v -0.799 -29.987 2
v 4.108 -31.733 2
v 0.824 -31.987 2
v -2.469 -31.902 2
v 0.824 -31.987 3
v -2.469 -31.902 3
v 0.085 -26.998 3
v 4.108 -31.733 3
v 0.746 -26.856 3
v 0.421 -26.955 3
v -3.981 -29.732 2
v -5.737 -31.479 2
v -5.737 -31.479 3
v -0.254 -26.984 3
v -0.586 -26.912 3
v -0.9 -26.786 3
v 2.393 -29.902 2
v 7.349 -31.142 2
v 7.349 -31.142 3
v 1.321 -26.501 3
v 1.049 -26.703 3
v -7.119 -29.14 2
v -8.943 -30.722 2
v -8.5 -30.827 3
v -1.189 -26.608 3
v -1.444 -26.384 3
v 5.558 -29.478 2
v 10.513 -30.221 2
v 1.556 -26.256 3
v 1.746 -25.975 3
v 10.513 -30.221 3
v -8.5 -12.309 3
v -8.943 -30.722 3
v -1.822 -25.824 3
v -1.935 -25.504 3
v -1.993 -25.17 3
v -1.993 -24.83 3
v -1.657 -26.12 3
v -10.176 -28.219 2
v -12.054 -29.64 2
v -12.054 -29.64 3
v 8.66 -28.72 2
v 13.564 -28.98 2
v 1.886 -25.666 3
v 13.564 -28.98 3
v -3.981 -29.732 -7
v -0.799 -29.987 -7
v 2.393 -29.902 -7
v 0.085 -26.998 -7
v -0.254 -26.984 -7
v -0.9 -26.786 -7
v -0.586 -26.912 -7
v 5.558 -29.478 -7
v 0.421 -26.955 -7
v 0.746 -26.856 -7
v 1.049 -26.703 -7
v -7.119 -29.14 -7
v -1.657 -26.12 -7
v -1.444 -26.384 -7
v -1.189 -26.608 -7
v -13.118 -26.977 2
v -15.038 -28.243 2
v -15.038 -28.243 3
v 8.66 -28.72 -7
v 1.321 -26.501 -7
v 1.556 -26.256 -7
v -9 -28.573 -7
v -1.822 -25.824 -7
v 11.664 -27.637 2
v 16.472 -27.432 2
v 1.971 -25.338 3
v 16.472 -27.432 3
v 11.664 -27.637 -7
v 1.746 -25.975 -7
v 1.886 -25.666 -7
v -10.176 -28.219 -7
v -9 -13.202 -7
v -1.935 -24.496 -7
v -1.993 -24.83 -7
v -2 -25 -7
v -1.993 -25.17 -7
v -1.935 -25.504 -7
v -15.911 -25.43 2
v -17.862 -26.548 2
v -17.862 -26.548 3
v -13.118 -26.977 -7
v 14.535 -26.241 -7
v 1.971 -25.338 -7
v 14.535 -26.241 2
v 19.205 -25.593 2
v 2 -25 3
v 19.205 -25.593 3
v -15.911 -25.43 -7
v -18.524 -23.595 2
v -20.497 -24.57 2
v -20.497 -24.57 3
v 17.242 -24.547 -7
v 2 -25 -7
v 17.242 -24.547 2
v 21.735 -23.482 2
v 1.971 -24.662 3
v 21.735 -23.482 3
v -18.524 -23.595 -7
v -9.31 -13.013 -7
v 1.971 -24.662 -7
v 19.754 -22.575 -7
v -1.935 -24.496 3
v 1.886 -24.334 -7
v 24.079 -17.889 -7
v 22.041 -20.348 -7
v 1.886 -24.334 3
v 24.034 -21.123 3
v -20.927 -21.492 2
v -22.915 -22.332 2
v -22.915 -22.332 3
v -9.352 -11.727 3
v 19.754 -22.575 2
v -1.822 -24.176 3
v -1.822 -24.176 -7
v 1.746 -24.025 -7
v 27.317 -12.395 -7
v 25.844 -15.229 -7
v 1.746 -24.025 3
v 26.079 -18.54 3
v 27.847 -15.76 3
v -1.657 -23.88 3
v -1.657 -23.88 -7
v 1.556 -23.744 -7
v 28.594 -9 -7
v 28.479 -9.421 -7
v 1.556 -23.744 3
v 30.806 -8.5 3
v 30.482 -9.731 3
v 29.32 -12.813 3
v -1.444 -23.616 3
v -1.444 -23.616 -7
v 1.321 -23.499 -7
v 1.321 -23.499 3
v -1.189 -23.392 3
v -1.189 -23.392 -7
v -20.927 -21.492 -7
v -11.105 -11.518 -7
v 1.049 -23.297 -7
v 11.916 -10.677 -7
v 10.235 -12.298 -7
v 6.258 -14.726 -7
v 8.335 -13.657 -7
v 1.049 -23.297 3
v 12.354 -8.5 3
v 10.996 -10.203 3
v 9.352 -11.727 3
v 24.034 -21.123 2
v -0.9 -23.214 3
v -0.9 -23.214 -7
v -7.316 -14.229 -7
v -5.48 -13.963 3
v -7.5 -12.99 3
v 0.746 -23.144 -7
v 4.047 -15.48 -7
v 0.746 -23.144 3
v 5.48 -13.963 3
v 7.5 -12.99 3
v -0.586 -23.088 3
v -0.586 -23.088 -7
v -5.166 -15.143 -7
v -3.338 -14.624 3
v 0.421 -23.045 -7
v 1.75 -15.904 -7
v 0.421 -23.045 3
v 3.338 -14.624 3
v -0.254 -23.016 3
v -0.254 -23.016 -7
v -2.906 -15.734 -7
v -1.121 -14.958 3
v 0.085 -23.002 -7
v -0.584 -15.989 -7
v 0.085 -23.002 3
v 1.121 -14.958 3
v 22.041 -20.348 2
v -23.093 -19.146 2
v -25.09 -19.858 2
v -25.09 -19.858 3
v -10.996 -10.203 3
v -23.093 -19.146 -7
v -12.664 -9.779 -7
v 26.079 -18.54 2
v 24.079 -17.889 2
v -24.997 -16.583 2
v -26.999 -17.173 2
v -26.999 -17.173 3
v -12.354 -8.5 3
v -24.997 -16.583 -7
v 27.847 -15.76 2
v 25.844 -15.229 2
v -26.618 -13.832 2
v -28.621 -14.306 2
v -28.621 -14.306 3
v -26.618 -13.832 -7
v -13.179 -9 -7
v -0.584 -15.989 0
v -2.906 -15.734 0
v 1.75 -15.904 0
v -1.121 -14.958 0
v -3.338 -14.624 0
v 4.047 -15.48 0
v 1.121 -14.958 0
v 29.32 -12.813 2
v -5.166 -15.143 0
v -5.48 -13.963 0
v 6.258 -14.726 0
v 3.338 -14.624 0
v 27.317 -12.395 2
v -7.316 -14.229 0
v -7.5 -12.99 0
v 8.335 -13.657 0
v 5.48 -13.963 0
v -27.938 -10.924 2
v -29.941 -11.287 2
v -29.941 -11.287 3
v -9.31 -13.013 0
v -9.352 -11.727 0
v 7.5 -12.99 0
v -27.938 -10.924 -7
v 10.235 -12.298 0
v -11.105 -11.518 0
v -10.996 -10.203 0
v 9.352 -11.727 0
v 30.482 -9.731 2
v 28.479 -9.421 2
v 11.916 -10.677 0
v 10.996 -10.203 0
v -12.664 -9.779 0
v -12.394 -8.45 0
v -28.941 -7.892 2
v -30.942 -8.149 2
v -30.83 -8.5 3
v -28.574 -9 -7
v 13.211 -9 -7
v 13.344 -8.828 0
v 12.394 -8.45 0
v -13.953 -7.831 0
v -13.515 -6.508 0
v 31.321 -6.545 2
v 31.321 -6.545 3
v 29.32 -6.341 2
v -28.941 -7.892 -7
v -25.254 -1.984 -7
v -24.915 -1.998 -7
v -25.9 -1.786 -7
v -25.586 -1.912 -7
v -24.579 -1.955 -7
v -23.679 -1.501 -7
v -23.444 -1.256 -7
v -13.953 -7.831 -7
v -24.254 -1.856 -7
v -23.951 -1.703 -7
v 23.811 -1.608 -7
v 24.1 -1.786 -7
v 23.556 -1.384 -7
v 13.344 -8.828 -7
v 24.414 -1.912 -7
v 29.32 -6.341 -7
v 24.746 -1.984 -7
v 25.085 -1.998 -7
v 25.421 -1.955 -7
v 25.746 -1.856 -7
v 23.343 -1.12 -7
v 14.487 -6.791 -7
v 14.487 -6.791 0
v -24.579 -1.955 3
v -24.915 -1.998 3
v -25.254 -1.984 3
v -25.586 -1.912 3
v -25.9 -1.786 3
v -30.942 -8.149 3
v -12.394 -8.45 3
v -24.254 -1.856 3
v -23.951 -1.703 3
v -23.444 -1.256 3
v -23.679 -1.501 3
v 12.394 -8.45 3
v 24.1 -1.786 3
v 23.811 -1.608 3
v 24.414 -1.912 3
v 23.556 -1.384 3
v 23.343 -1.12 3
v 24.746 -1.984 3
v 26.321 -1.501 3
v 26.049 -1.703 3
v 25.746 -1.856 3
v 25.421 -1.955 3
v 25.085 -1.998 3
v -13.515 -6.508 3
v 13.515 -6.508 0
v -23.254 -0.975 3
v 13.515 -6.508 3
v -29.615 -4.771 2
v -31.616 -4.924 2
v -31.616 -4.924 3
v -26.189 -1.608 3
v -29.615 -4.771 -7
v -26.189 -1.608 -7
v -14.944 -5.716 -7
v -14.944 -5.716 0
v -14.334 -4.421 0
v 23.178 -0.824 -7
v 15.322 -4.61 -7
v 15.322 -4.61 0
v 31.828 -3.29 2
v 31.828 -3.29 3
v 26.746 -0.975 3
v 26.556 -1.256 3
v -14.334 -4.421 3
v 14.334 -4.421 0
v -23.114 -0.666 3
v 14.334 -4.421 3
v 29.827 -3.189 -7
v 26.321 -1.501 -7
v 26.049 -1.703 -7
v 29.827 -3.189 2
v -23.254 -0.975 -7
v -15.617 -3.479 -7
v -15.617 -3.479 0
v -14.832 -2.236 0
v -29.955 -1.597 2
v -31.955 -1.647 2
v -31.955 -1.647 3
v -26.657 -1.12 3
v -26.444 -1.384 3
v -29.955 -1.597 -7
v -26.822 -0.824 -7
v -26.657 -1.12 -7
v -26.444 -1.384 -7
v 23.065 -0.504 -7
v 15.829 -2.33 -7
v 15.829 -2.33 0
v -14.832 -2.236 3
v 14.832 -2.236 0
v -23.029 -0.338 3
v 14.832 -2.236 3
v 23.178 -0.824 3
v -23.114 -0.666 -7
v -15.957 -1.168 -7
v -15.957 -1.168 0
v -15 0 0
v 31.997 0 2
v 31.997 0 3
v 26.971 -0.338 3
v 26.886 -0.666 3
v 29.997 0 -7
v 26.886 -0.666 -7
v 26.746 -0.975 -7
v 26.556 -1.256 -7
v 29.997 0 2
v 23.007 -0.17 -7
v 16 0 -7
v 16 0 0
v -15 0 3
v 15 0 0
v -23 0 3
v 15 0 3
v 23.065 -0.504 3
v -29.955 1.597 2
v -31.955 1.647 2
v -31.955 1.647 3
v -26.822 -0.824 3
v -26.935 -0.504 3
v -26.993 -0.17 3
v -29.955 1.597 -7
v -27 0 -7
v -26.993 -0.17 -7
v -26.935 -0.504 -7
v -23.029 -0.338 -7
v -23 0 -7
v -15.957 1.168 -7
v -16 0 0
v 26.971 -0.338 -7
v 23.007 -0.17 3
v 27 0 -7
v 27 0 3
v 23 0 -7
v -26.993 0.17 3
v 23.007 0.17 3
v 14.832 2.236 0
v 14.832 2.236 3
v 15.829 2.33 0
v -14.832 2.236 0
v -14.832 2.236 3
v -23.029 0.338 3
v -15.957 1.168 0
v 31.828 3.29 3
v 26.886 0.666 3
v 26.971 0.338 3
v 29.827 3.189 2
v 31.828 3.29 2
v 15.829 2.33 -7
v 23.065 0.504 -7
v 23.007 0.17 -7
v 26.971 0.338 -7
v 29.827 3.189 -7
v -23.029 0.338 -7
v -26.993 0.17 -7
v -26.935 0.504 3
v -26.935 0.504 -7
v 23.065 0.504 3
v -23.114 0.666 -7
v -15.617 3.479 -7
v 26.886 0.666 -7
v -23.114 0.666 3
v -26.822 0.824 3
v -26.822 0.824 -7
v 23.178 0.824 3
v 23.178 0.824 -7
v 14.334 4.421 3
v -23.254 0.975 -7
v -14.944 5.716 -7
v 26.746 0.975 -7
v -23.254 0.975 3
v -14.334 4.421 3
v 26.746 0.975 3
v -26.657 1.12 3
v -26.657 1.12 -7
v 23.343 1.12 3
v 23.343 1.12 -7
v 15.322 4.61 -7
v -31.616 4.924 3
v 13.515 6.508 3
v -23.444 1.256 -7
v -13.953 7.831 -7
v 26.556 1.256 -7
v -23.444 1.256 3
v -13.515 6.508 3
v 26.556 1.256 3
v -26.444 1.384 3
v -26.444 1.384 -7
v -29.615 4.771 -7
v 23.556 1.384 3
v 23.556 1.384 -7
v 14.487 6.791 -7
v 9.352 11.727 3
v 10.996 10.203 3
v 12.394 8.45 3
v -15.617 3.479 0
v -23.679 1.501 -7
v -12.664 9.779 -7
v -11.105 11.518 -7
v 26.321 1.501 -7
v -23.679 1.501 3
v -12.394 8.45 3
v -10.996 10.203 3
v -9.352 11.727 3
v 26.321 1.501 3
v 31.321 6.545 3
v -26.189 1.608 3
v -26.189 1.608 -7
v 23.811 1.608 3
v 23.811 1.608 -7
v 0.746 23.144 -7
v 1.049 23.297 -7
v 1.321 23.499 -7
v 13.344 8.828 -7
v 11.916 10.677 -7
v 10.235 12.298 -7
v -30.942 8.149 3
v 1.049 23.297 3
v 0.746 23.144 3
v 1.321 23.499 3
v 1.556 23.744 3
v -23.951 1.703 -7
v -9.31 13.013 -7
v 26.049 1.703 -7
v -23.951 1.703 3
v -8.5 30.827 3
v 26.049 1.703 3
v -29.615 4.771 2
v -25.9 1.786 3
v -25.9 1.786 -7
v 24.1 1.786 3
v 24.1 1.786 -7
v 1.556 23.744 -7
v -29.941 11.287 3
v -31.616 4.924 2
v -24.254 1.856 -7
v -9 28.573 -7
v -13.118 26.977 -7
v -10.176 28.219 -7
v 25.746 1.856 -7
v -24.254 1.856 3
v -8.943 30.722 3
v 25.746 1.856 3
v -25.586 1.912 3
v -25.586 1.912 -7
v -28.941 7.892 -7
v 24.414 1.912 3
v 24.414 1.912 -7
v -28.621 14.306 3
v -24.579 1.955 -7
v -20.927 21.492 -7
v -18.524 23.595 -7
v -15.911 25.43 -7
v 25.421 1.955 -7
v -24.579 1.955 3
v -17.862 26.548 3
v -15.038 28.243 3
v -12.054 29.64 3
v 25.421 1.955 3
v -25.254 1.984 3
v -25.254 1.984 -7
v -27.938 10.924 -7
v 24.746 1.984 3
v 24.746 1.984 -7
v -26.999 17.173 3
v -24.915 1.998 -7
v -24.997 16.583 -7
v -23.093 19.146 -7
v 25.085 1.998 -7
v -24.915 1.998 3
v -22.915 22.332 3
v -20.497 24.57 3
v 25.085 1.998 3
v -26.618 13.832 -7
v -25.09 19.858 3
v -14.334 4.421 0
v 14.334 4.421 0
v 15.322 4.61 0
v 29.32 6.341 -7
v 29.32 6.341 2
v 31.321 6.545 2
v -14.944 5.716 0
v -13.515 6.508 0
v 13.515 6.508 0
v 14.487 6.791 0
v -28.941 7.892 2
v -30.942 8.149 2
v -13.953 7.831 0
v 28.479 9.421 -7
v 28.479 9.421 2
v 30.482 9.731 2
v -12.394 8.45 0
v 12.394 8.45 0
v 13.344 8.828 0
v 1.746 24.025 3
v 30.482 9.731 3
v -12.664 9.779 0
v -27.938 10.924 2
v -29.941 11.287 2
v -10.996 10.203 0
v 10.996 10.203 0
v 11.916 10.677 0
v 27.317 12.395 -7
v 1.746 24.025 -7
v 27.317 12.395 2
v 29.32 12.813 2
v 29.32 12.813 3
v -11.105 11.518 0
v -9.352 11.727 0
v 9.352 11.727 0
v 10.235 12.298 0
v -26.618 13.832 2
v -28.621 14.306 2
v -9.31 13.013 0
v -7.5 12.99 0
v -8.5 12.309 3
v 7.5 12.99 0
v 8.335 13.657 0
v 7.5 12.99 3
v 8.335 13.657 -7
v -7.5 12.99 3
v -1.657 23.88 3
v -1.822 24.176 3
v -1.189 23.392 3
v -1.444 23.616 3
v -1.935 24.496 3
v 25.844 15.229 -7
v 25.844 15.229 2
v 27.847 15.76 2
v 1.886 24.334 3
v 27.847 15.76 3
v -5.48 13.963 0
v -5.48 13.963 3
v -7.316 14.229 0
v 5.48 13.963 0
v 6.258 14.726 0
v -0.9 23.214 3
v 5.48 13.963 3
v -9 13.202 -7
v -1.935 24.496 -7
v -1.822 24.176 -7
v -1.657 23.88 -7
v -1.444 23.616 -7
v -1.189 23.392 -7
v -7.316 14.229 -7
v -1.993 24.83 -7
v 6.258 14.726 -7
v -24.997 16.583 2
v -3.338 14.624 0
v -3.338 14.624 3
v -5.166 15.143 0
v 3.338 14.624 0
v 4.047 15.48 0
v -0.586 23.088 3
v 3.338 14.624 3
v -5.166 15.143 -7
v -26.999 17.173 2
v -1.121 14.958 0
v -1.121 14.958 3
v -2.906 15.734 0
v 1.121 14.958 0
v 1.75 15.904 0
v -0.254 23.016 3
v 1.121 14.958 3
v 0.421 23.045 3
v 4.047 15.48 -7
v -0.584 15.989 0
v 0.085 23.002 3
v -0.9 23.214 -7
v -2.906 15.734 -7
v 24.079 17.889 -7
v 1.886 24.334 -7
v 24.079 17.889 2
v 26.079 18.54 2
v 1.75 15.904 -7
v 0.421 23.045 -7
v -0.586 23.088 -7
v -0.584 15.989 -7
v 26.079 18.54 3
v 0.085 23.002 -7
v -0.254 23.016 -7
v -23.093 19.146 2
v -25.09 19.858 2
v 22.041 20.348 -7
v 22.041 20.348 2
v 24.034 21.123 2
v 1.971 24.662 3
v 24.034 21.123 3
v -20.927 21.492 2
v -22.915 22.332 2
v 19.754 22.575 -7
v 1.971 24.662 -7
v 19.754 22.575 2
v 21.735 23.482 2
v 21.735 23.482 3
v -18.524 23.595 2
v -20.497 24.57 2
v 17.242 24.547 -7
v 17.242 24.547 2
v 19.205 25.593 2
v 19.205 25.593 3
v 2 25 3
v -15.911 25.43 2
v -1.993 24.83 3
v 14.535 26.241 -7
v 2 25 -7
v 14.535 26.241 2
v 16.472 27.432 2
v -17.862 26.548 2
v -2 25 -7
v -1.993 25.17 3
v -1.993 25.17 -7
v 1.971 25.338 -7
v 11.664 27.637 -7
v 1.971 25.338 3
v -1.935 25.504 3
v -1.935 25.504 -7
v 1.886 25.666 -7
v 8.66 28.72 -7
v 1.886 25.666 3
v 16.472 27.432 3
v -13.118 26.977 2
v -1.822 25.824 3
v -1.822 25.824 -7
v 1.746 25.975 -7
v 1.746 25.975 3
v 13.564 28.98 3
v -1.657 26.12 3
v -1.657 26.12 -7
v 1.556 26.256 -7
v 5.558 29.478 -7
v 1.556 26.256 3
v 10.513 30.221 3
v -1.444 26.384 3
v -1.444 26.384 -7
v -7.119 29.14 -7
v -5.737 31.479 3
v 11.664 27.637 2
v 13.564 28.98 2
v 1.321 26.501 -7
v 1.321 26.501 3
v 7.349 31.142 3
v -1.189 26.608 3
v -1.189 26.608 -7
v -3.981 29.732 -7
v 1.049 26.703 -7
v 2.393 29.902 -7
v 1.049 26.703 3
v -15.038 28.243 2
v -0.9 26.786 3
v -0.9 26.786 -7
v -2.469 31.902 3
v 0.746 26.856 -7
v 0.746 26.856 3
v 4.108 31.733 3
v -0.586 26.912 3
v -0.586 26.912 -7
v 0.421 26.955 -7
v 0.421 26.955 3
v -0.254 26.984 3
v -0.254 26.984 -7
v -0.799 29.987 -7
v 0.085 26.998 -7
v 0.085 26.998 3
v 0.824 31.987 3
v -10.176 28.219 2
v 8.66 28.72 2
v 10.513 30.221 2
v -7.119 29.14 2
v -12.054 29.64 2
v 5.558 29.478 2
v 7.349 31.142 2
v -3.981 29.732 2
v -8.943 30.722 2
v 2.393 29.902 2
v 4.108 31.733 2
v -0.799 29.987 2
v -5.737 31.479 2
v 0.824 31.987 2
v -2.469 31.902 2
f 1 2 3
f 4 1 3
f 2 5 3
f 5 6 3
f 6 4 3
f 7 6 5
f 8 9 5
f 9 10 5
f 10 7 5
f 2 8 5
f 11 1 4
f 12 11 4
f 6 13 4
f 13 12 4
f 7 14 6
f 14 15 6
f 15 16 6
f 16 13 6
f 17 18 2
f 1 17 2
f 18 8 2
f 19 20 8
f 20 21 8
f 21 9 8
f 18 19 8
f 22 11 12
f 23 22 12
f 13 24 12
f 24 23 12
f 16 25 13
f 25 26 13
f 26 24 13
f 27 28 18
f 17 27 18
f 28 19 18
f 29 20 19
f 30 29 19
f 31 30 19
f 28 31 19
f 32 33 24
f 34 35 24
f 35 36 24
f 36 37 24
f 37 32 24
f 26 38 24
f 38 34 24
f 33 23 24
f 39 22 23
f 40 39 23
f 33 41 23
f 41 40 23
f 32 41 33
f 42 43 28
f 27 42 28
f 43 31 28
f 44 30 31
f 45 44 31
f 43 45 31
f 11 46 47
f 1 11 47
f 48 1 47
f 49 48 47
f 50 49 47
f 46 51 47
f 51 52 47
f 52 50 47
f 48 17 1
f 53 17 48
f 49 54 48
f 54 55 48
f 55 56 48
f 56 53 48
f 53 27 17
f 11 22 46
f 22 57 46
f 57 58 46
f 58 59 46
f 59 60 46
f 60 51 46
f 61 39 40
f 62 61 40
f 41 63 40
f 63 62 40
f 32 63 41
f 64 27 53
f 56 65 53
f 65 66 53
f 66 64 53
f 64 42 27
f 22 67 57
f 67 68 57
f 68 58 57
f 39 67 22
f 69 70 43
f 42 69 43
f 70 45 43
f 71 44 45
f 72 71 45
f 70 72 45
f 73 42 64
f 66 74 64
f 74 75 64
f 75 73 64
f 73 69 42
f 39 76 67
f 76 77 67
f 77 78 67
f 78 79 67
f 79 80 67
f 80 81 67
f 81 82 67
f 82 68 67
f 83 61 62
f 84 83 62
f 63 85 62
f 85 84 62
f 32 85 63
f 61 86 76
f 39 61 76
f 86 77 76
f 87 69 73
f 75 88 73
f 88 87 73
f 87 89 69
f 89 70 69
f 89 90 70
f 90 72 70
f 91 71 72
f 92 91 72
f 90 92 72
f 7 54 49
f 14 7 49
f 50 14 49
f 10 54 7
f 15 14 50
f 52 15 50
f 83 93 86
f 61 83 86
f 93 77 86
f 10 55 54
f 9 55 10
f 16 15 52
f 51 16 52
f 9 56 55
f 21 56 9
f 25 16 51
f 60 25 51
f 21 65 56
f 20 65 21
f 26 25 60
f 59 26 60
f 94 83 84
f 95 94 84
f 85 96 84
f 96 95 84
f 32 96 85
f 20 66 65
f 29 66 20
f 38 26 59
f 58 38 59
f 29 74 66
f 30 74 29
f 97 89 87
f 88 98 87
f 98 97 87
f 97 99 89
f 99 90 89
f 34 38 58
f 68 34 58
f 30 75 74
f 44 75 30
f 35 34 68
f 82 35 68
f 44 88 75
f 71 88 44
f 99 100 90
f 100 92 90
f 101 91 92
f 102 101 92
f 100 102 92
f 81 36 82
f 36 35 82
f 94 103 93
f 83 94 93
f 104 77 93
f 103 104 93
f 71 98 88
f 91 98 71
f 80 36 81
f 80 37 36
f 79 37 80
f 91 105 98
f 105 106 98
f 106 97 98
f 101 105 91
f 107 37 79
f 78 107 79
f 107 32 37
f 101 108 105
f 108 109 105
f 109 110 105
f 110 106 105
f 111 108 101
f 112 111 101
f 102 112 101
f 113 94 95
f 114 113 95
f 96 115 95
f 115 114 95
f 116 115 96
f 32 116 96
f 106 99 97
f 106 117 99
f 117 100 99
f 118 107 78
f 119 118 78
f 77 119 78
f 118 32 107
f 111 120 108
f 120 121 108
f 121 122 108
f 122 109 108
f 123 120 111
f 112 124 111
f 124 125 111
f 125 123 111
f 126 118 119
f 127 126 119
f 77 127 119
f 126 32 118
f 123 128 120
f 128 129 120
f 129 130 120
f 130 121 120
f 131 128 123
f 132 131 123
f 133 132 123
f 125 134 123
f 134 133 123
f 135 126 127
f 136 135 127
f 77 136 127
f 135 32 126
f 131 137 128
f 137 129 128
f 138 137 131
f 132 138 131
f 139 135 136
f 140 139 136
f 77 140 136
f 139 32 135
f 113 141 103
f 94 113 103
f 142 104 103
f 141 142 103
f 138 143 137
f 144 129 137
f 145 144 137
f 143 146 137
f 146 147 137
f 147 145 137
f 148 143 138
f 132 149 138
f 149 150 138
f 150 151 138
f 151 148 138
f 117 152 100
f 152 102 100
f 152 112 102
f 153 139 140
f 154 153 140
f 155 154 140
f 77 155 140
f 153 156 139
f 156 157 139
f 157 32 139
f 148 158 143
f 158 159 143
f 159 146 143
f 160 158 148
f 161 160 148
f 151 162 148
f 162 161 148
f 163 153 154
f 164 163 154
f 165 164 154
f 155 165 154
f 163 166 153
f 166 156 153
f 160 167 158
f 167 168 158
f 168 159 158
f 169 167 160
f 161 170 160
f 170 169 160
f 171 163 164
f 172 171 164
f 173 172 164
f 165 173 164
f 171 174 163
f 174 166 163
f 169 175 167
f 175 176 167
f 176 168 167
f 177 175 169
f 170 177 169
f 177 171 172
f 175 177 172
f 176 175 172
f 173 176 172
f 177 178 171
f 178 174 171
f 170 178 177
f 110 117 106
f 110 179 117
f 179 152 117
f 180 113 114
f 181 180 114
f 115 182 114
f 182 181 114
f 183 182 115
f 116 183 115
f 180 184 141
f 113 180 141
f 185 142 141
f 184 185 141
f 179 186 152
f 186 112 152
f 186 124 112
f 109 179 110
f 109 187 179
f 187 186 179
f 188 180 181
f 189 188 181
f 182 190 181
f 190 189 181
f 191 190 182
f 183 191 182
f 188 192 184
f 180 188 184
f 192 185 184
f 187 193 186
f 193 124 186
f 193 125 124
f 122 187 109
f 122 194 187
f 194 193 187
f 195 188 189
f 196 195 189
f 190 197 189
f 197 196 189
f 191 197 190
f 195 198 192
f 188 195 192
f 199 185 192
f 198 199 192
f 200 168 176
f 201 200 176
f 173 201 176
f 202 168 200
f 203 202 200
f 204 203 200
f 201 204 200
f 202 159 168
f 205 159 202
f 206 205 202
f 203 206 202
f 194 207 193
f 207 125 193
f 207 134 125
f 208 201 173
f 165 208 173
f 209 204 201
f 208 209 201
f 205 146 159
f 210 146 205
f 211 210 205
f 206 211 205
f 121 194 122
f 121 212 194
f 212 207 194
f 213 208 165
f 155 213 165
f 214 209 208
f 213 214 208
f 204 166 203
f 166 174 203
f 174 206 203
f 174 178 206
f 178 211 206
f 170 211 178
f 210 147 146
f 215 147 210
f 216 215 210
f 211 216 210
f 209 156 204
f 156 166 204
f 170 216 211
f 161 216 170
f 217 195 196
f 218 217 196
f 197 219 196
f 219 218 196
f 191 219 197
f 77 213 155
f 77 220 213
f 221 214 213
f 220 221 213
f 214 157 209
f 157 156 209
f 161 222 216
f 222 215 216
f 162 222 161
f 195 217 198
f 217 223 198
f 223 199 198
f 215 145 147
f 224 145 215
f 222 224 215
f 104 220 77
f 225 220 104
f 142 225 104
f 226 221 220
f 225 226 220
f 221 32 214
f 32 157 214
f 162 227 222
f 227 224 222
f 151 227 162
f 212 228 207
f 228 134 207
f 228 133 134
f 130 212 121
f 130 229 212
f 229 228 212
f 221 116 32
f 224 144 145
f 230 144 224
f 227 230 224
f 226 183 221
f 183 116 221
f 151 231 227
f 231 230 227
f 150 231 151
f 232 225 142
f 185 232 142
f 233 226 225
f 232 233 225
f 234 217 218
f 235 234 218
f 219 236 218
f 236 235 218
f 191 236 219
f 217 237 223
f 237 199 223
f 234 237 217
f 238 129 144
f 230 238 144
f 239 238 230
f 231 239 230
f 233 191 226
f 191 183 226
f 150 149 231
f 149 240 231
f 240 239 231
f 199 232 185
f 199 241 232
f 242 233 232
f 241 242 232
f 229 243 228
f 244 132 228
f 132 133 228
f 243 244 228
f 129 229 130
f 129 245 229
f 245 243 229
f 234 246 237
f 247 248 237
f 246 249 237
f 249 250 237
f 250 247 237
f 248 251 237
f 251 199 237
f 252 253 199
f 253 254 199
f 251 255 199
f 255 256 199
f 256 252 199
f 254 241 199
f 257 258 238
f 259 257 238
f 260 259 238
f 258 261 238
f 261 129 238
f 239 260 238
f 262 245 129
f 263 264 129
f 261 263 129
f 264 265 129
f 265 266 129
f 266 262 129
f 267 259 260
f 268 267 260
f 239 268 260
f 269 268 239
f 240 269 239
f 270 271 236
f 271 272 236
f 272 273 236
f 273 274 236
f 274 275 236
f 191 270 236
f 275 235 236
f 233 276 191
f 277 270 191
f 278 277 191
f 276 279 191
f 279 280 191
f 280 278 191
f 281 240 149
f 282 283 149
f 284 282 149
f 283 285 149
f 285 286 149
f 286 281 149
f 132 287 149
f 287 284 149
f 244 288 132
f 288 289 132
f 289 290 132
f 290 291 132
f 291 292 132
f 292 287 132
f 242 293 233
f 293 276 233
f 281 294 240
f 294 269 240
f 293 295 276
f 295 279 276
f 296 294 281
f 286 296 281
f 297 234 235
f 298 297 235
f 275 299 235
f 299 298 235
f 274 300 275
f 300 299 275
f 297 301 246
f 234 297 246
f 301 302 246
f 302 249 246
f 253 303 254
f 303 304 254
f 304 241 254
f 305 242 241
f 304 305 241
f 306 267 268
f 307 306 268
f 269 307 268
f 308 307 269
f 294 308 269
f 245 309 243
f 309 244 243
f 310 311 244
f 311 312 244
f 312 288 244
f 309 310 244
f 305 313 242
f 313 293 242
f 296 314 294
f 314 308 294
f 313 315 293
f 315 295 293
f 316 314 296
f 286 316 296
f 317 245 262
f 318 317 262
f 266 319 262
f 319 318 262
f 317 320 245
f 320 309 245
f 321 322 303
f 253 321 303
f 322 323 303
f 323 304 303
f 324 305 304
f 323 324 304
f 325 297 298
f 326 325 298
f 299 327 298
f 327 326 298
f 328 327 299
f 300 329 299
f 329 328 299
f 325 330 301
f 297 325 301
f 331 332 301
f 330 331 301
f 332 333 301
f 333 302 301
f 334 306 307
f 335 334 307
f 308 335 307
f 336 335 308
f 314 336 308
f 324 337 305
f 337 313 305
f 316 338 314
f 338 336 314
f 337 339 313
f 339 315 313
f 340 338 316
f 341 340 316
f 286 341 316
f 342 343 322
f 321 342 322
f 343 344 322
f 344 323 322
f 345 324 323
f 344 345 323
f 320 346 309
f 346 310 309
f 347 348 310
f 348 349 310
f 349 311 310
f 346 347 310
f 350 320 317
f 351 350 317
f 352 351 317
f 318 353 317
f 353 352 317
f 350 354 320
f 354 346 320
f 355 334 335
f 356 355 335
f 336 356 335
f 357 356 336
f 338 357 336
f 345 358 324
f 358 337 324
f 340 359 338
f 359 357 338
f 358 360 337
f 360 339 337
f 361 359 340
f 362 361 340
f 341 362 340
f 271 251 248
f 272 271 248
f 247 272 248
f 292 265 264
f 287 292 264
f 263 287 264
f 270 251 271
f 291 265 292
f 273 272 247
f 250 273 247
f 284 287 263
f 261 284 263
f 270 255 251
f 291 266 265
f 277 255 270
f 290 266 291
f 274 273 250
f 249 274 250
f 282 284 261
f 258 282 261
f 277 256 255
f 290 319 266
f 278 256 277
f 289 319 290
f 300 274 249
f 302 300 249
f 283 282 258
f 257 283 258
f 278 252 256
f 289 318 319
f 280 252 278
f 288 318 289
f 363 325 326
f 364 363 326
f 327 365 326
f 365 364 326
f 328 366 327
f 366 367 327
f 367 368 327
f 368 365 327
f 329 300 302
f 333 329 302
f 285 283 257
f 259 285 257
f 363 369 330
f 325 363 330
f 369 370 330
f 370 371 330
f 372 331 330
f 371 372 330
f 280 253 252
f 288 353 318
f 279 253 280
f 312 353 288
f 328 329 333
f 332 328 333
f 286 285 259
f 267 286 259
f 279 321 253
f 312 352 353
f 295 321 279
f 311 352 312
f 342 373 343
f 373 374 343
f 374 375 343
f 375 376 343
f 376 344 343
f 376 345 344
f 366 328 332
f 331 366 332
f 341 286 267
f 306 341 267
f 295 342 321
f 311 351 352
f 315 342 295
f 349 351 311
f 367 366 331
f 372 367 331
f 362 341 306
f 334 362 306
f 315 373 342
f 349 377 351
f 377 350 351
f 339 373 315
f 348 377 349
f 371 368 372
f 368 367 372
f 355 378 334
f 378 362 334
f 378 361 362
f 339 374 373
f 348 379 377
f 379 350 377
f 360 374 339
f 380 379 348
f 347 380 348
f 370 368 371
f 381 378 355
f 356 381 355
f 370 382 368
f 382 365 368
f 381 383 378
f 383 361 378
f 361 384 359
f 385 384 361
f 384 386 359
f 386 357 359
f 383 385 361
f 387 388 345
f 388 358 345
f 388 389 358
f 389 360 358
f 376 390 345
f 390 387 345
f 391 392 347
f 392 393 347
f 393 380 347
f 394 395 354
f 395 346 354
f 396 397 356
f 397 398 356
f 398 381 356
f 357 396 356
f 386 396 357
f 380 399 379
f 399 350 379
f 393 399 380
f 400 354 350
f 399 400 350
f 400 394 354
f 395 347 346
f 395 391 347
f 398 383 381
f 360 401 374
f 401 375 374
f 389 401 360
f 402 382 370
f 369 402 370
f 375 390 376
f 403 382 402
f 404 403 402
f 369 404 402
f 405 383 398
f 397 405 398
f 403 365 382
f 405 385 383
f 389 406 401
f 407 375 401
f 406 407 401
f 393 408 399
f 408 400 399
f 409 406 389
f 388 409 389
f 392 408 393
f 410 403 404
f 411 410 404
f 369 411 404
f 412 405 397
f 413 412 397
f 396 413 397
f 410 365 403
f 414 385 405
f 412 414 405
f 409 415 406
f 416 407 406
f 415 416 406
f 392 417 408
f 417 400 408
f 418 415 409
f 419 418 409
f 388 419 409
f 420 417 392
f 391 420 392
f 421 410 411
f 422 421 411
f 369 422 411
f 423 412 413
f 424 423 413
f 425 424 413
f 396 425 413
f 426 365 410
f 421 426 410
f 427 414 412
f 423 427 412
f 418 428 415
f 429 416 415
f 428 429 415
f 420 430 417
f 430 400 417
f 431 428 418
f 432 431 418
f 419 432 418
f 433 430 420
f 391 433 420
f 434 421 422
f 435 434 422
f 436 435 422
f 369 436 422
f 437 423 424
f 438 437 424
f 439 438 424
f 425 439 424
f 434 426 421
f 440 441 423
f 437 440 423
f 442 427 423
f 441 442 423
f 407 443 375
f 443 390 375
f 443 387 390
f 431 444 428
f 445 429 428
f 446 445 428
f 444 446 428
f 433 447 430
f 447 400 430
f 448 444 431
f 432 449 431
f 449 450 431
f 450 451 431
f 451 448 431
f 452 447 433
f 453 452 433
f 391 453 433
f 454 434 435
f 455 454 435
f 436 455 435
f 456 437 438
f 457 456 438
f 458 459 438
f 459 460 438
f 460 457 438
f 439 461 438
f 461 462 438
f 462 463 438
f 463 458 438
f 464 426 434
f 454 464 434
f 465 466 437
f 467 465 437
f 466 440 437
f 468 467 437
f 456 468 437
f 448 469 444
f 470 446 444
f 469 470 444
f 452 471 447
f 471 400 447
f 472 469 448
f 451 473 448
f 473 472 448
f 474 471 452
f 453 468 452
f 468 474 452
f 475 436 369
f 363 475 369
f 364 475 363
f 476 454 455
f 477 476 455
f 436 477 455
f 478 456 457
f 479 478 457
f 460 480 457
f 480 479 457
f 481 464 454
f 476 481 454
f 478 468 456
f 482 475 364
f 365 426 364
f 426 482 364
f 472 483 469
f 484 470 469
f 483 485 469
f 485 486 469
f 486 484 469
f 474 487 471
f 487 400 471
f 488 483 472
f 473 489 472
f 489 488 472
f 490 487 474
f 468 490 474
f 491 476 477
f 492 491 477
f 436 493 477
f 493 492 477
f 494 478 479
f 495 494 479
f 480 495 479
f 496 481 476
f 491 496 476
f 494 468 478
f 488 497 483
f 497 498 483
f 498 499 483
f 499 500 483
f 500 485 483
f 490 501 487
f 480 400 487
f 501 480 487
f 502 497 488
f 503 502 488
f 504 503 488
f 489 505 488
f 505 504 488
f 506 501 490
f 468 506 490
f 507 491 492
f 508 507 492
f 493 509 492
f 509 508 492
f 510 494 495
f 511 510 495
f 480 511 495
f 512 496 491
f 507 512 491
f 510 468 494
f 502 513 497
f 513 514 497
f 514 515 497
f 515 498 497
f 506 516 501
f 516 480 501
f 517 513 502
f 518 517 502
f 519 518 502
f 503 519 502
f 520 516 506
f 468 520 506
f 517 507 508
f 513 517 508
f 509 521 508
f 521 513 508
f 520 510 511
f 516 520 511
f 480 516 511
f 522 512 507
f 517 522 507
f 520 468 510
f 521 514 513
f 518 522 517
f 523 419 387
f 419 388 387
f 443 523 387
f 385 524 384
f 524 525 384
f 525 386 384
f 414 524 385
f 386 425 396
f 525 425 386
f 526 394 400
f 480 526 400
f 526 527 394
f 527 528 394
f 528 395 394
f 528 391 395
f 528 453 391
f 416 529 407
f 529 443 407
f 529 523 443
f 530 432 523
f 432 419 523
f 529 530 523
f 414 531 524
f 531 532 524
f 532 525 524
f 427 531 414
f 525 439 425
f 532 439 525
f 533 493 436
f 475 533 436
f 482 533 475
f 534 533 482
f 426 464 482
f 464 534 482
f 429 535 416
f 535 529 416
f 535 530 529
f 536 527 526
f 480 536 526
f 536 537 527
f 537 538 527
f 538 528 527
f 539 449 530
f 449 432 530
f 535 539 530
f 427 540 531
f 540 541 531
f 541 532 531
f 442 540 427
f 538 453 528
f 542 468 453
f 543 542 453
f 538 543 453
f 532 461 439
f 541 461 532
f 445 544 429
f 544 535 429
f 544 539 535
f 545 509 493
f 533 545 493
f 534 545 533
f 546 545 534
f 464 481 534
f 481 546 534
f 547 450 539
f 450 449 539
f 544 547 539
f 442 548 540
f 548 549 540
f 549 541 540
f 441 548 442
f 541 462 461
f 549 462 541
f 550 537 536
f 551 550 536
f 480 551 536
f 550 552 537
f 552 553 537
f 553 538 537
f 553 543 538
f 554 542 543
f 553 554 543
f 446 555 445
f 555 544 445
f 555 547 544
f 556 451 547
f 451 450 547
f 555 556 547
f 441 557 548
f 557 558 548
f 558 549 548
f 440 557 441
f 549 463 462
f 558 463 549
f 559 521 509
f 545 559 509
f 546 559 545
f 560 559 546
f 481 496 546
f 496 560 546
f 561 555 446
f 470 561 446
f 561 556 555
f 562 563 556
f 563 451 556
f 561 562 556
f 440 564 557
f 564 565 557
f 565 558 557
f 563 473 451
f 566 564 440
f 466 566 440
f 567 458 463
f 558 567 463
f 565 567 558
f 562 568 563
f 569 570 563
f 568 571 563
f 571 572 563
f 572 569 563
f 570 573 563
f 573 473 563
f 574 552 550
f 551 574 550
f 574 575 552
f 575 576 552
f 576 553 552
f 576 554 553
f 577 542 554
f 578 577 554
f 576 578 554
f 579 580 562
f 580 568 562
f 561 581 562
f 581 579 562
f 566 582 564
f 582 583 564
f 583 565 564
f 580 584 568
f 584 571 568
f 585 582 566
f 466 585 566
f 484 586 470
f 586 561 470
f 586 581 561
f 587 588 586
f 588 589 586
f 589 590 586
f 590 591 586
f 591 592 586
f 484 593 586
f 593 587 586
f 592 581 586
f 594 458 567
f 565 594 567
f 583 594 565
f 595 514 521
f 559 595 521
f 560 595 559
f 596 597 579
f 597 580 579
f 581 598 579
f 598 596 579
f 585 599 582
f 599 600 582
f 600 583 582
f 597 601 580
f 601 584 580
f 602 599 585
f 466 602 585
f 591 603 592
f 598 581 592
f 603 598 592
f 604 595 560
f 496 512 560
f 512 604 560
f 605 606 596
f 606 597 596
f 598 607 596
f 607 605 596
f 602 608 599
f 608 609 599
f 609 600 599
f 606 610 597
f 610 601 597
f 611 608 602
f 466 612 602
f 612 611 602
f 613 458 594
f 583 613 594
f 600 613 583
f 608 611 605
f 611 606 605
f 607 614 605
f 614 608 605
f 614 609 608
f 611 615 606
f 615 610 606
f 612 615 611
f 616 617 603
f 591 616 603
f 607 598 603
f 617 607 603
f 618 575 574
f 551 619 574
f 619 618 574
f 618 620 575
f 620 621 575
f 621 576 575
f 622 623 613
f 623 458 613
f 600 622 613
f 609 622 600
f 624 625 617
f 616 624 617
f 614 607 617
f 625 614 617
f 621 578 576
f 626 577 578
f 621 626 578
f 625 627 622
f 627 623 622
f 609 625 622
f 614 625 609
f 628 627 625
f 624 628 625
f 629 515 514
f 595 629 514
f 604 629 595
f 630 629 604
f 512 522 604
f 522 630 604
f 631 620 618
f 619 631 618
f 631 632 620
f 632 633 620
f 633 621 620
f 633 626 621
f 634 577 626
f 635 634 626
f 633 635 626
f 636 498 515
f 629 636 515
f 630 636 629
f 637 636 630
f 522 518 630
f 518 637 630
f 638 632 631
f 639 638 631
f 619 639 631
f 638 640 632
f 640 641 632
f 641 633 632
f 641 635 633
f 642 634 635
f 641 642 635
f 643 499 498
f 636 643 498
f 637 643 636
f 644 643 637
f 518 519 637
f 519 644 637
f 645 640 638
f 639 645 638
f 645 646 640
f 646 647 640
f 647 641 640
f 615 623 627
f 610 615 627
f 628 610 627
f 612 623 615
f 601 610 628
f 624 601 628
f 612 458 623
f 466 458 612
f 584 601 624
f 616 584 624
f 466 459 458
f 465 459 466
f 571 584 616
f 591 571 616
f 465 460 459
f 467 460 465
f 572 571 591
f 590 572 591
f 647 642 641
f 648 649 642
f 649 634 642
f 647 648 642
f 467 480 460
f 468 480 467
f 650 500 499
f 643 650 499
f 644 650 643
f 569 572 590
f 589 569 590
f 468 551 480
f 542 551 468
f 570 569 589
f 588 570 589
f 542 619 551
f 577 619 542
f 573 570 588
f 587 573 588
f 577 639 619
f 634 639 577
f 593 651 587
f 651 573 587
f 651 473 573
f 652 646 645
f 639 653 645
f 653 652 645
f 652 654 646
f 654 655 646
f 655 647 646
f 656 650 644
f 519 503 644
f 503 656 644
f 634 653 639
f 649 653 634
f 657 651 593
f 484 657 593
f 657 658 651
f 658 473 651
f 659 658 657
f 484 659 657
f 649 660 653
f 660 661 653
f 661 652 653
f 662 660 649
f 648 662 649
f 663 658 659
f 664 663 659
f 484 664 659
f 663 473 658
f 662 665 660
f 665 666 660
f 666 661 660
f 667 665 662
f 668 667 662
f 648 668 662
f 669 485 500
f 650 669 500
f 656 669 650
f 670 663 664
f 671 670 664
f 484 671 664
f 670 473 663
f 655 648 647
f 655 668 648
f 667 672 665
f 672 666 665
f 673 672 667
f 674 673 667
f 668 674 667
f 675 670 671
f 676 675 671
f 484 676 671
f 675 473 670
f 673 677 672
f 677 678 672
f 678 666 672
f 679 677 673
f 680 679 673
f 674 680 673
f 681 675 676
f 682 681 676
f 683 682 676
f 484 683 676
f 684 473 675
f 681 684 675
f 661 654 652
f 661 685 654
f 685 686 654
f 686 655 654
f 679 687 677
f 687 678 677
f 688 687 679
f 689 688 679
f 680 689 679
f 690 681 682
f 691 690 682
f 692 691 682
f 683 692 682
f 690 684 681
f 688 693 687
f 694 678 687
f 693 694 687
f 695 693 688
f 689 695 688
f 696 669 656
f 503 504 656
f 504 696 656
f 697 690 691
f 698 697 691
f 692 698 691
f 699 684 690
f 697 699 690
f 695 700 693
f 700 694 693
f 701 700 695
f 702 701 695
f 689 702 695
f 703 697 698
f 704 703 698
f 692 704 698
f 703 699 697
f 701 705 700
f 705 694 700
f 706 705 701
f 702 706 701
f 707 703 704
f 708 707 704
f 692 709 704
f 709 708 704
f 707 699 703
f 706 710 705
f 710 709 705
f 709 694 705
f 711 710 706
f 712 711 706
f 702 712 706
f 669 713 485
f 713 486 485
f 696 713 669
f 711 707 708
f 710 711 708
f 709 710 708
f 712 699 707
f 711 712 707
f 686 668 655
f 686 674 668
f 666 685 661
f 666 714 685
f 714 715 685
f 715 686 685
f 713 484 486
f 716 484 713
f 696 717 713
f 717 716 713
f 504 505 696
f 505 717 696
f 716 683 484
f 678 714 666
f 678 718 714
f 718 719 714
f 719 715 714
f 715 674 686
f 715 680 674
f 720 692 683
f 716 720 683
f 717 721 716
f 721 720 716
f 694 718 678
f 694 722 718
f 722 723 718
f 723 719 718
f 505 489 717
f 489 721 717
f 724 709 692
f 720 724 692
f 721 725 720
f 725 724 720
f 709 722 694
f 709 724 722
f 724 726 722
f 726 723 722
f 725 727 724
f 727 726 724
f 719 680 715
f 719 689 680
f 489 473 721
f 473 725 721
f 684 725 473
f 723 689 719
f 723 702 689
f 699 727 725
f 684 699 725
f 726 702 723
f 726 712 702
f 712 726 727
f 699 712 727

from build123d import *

# Parameters (mm, degrees)
SKETCH1_R           = 29.9974
SKETCH1_R_2         = 16
BOSS_EXTRUDE1_DEPTH = 7
SKETCH2_R           = 2
CUT_EXTRUDE1_DEPTH  = 10
SKETCH3_R           = 16
SKETCH3_R_2         = 15
BOSS_EXTRUDE2_DEPTH = 1
BOSS_EXTRUDE3_START = 3
SKETCH1_3_R         = 29.9974
SKETCH1_3_R_2       = 16
BOSS_EXTRUDE3_DEPTH = 3
BOSS_EXTRUDE4_START = 2
SKETCH3_2_R         = 16
SKETCH3_2_R_2       = 15
BOSS_EXTRUDE4_DEPTH = 2
SKETCH4_R           = 31.9974
SKETCH4_R_2         = 29.9974
BOSS_EXTRUDE5_DEPTH = 1
CUT_EXTRUDE3_START  = -1
SKETCH5_R           = 16
SKETCH5_R_2         = 15
CUT_EXTRUDE3_DEPTH  = 1
SKETCH6_R           = 3
SKETCH6_R_2         = 2
BOSS_EXTRUDE6_DEPTH = 3
CHAMFER1_SIZE       = 3
CUT_EXTRUDE4_START  = -10
SKETCH7_R           = 2
CUT_EXTRUDE4_DEPTH  = 10
BOSS_EXTRUDE7_START = 1
SKETCH8_R           = 16
SKETCH8_R_2         = 15
BOSS_EXTRUDE7_DEPTH = 1


# Read off the part's stored shape, not the designer's step: Cut-Extrude5
with BuildPart() as part:
    # Sketch1 → Boss-Extrude1 (new body)
    with BuildSketch(Plane.XY):
        Circle(SKETCH1_R)
        Circle(SKETCH1_R_2, mode=Mode.SUBTRACT)
    extrude(amount=-BOSS_EXTRUDE1_DEPTH)

    # Sketch2 → Cut-Extrude1 (cut)
    with BuildSketch(Plane.XY):
        with Locations((25, 0)):
            Circle(SKETCH2_R)
        with Locations((0, -25)):
            Circle(SKETCH2_R)
        with Locations((-25, 0)):
            Circle(SKETCH2_R)
        with Locations((0, 25)):
            Circle(SKETCH2_R)
    extrude(amount=-CUT_EXTRUDE1_DEPTH, mode=Mode.SUBTRACT)

    # Sketch3 → Boss-Extrude2 (add)
    with BuildSketch(Plane.XY):
        Circle(SKETCH3_R)
        Circle(SKETCH3_R_2, mode=Mode.SUBTRACT)
    extrude(amount=-BOSS_EXTRUDE2_DEPTH)

    # Sketch1<3> → Boss-Extrude3 (add)
    with BuildSketch(Plane.XY.offset(BOSS_EXTRUDE3_START)):
        Circle(SKETCH1_3_R)
        Circle(SKETCH1_3_R_2, mode=Mode.SUBTRACT)
    extrude(amount=-BOSS_EXTRUDE3_DEPTH)

    # Sketch3<2> → Boss-Extrude4 (add)
    with BuildSketch(Plane.XY.offset(BOSS_EXTRUDE4_START)):
        Circle(SKETCH3_2_R)
        Circle(SKETCH3_2_R_2, mode=Mode.SUBTRACT)
    extrude(amount=-BOSS_EXTRUDE4_DEPTH)

    # Sketch4 → Boss-Extrude5 (add)
    with BuildSketch(Plane.XY.offset(3)):
        Circle(SKETCH4_R)
        Circle(SKETCH4_R_2, mode=Mode.SUBTRACT)
    extrude(amount=-BOSS_EXTRUDE5_DEPTH)

    # Sketch5 → Cut-Extrude3 (cut)
    with BuildSketch(Plane(origin=(0, 0, -1), x_dir=(-1, 0, 0), z_dir=(0, 0, -1)).offset(CUT_EXTRUDE3_START)):
        with Locations(Location((0, 0, 0), (0, 0, 180))):
            Circle(SKETCH5_R)
        with Locations(Location((0, 0, 0), (0, 0, 180))):
            Circle(SKETCH5_R_2, mode=Mode.SUBTRACT)
    extrude(amount=CUT_EXTRUDE3_DEPTH, mode=Mode.SUBTRACT)

    # Sketch6 → Boss-Extrude6 (add)
    # profile 1 of 4: a face of its own
    with BuildSketch(Plane(origin=(0, 0, -7), x_dir=(-1, 0, 0), z_dir=(0, 0, -1))):
        with Locations(Location((-25, 0, 0), (0, 0, 180))):
            Circle(SKETCH6_R)
        with Locations(Location((-25, 0, 0), (0, 0, 180))):
            Circle(SKETCH6_R_2, mode=Mode.SUBTRACT)
    # profile 2 of 4: a face of its own
    with BuildSketch(Plane(origin=(0, 0, -7), x_dir=(-1, 0, 0), z_dir=(0, 0, -1))):
        with Locations(Location((0, -25, 0), (0, 0, 180))):
            Circle(SKETCH6_R)
        with Locations(Location((0, -25, 0), (0, 0, 180))):
            Circle(SKETCH6_R_2, mode=Mode.SUBTRACT)
    # profile 3 of 4: a face of its own
    with BuildSketch(Plane(origin=(0, 0, -7), x_dir=(-1, 0, 0), z_dir=(0, 0, -1))):
        with Locations(Location((25, 0, 0), (0, 0, 180))):
            Circle(SKETCH6_R)
        with Locations(Location((25, 0, 0), (0, 0, 180))):
            Circle(SKETCH6_R_2, mode=Mode.SUBTRACT)
    # profile 4 of 4: a face of its own
    with BuildSketch(Plane(origin=(0, 0, -7), x_dir=(-1, 0, 0), z_dir=(0, 0, -1))):
        with Locations(Location((0, 25, 0), (0, 0, 180))):
            Circle(SKETCH6_R)
        with Locations(Location((0, 25, 0), (0, 0, 180))):
            Circle(SKETCH6_R_2, mode=Mode.SUBTRACT)
    extrude(amount=BOSS_EXTRUDE6_DEPTH)

    # Chamfer1
    # the kernel refuses this chamfer: 3 mm, written as the material it adds along each edge
    with BuildSketch(Plane(origin=(25, 0, -7), x_dir=(1, 0, 0), z_dir=(0, 1, 0))) as chamfer1_piece_1_section:
        Polygon((3 + CHAMFER1_SIZE, 0), (3, CHAMFER1_SIZE), (3, 0), align=None)
    chamfer1_piece_1 = revolve(axis=Axis((25, 0, -7), (0, 0, -1)), mode=Mode.PRIVATE)
    chamfer1_piece_1 = chamfer1_piece_1 & Plane(origin=(0, 0, -8.42256149), x_dir=(1, 0, 0), z_dir=(0, 0, 1)) * Cylinder(29.9974, 25, mode=Mode.PRIVATE)
    chamfer1_piece_1 = split(chamfer1_piece_1, bisect_by=Plane(origin=(20.492585696, 0, -10), z_dir=(0, 0, 1)), keep=Keep.TOP, mode=Mode.PRIVATE)
    add(chamfer1_piece_1)
    with BuildSketch(Plane(origin=(0, -25, -7), x_dir=(1, 0, 0), z_dir=(0, 1, 0))) as chamfer1_piece_2_section:
        Polygon((3 + CHAMFER1_SIZE, 0), (3, CHAMFER1_SIZE), (3, 0), align=None)
    chamfer1_piece_2 = revolve(axis=Axis((0, -25, -7), (0, 0, -1)), mode=Mode.PRIVATE)
    chamfer1_piece_2 = chamfer1_piece_2 & Plane(origin=(0, 0, -8.422561428), x_dir=(1, 0, 0), z_dir=(0, 0, 1)) * Cylinder(29.9974, 25, mode=Mode.PRIVATE)
    chamfer1_piece_2 = split(chamfer1_piece_2, bisect_by=Plane(origin=(-4.507414242, -25, -10), z_dir=(0, 0, 1)), keep=Keep.TOP, mode=Mode.PRIVATE)
    add(chamfer1_piece_2)
    with BuildSketch(Plane(origin=(-25, 0, -7), x_dir=(1, 0, 0), z_dir=(0, 1, 0))) as chamfer1_piece_3_section:
        Polygon((3 + CHAMFER1_SIZE, 0), (3, CHAMFER1_SIZE), (3, 0), align=None)
    chamfer1_piece_3 = revolve(axis=Axis((-25, 0, -7), (0, 0, -1)), mode=Mode.PRIVATE)
    chamfer1_piece_3 = chamfer1_piece_3 & Plane(origin=(0, 0, -8.422561427), x_dir=(1, 0, 0), z_dir=(0, 0, 1)) * Cylinder(29.9974, 25, mode=Mode.PRIVATE)
    chamfer1_piece_3 = split(chamfer1_piece_3, bisect_by=Plane(origin=(-29.507414241, 0, -10), z_dir=(0, 0, 1)), keep=Keep.TOP, mode=Mode.PRIVATE)
    add(chamfer1_piece_3)
    with BuildSketch(Plane(origin=(0, 25, -7), x_dir=(1, 0, 0), z_dir=(0, 1, 0))) as chamfer1_piece_4_section:
        Polygon((3 + CHAMFER1_SIZE, 0), (3, CHAMFER1_SIZE), (3, 0), align=None)
    chamfer1_piece_4 = revolve(axis=Axis((0, 25, -7), (0, 0, -1)), mode=Mode.PRIVATE)
    chamfer1_piece_4 = chamfer1_piece_4 & Plane(origin=(0, 0, -8.422561436), x_dir=(1, 0, 0), z_dir=(0, 0, 1)) * Cylinder(29.9974, 25, mode=Mode.PRIVATE)
    chamfer1_piece_4 = split(chamfer1_piece_4, bisect_by=Plane(origin=(-4.50741425, 25, -10), z_dir=(0, 0, 1)), keep=Keep.TOP, mode=Mode.PRIVATE)
    add(chamfer1_piece_4)

    # Sketch7 → Cut-Extrude4 (cut)
    with BuildSketch(Plane(origin=(0, 0, 0), x_dir=(-1, 0, 0), z_dir=(0, 0, -1)).offset(CUT_EXTRUDE4_START)):
        with Locations(Location((-25, 0, 0), (0, 0, 180))):
            Circle(SKETCH7_R)
        with Locations(Location((0, 25, 0), (0, 0, 180))):
            Circle(SKETCH7_R)
        with Locations(Location((25, 0, 0), (0, 0, 180))):
            Circle(SKETCH7_R)
        with Locations(Location((0, -25, 0), (0, 0, 180))):
            Circle(SKETCH7_R)
    extrude(amount=CUT_EXTRUDE4_DEPTH, mode=Mode.SUBTRACT)

    # Sketch8 → Boss-Extrude7 (add)
    with BuildSketch(Plane.XY.offset(2).offset(BOSS_EXTRUDE7_START)):
        Circle(SKETCH8_R)
        Circle(SKETCH8_R_2, mode=Mode.SUBTRACT)
    extrude(amount=-BOSS_EXTRUDE7_DEPTH)

    # Cut-Extrude5 outline → Cut-Extrude5 (revolve, cut)
    with BuildSketch(Plane(origin=(25, 0, 0), x_dir=(1, 0, 0), z_dir=(0, -1, 0))):
        Polygon((2, -7), (2, -10), (3, -10), (6, -7), align=None)
    revolve(axis=Axis((25, 0, 0), (0, 0, 1)), mode=Mode.SUBTRACT)

    # Cut-Extrude5 2 outline → Cut-Extrude5 2 (revolve, cut)
    with BuildSketch(Plane.XZ.offset(25)):
        Polygon((2, -7), (2, -10), (3, -10), (6, -7), align=None)
    revolve(axis=Axis((0, -25, 0), (0, 0, 1)), mode=Mode.SUBTRACT)

    # Cut-Extrude5 3 outline → Cut-Extrude5 3 (revolve, cut)
    with BuildSketch(Plane(origin=(-25, 0, 0), x_dir=(1, 0, 0), z_dir=(0, -1, 0))):
        Polygon((2, -7), (2, -10), (3, -10), (6, -7), align=None)
    revolve(axis=Axis((-25, 0, 0), (0, 0, 1)), mode=Mode.SUBTRACT)

    # Cut-Extrude5 4 outline → Cut-Extrude5 4 (revolve, cut)
    with BuildSketch(Plane.XZ.offset(-25)):
        Polygon((2, -7), (2, -10), (3, -10), (6, -7), align=None)
    revolve(axis=Axis((0, 25, 0), (0, 0, 1)), mode=Mode.SUBTRACT)


solid = part.part
